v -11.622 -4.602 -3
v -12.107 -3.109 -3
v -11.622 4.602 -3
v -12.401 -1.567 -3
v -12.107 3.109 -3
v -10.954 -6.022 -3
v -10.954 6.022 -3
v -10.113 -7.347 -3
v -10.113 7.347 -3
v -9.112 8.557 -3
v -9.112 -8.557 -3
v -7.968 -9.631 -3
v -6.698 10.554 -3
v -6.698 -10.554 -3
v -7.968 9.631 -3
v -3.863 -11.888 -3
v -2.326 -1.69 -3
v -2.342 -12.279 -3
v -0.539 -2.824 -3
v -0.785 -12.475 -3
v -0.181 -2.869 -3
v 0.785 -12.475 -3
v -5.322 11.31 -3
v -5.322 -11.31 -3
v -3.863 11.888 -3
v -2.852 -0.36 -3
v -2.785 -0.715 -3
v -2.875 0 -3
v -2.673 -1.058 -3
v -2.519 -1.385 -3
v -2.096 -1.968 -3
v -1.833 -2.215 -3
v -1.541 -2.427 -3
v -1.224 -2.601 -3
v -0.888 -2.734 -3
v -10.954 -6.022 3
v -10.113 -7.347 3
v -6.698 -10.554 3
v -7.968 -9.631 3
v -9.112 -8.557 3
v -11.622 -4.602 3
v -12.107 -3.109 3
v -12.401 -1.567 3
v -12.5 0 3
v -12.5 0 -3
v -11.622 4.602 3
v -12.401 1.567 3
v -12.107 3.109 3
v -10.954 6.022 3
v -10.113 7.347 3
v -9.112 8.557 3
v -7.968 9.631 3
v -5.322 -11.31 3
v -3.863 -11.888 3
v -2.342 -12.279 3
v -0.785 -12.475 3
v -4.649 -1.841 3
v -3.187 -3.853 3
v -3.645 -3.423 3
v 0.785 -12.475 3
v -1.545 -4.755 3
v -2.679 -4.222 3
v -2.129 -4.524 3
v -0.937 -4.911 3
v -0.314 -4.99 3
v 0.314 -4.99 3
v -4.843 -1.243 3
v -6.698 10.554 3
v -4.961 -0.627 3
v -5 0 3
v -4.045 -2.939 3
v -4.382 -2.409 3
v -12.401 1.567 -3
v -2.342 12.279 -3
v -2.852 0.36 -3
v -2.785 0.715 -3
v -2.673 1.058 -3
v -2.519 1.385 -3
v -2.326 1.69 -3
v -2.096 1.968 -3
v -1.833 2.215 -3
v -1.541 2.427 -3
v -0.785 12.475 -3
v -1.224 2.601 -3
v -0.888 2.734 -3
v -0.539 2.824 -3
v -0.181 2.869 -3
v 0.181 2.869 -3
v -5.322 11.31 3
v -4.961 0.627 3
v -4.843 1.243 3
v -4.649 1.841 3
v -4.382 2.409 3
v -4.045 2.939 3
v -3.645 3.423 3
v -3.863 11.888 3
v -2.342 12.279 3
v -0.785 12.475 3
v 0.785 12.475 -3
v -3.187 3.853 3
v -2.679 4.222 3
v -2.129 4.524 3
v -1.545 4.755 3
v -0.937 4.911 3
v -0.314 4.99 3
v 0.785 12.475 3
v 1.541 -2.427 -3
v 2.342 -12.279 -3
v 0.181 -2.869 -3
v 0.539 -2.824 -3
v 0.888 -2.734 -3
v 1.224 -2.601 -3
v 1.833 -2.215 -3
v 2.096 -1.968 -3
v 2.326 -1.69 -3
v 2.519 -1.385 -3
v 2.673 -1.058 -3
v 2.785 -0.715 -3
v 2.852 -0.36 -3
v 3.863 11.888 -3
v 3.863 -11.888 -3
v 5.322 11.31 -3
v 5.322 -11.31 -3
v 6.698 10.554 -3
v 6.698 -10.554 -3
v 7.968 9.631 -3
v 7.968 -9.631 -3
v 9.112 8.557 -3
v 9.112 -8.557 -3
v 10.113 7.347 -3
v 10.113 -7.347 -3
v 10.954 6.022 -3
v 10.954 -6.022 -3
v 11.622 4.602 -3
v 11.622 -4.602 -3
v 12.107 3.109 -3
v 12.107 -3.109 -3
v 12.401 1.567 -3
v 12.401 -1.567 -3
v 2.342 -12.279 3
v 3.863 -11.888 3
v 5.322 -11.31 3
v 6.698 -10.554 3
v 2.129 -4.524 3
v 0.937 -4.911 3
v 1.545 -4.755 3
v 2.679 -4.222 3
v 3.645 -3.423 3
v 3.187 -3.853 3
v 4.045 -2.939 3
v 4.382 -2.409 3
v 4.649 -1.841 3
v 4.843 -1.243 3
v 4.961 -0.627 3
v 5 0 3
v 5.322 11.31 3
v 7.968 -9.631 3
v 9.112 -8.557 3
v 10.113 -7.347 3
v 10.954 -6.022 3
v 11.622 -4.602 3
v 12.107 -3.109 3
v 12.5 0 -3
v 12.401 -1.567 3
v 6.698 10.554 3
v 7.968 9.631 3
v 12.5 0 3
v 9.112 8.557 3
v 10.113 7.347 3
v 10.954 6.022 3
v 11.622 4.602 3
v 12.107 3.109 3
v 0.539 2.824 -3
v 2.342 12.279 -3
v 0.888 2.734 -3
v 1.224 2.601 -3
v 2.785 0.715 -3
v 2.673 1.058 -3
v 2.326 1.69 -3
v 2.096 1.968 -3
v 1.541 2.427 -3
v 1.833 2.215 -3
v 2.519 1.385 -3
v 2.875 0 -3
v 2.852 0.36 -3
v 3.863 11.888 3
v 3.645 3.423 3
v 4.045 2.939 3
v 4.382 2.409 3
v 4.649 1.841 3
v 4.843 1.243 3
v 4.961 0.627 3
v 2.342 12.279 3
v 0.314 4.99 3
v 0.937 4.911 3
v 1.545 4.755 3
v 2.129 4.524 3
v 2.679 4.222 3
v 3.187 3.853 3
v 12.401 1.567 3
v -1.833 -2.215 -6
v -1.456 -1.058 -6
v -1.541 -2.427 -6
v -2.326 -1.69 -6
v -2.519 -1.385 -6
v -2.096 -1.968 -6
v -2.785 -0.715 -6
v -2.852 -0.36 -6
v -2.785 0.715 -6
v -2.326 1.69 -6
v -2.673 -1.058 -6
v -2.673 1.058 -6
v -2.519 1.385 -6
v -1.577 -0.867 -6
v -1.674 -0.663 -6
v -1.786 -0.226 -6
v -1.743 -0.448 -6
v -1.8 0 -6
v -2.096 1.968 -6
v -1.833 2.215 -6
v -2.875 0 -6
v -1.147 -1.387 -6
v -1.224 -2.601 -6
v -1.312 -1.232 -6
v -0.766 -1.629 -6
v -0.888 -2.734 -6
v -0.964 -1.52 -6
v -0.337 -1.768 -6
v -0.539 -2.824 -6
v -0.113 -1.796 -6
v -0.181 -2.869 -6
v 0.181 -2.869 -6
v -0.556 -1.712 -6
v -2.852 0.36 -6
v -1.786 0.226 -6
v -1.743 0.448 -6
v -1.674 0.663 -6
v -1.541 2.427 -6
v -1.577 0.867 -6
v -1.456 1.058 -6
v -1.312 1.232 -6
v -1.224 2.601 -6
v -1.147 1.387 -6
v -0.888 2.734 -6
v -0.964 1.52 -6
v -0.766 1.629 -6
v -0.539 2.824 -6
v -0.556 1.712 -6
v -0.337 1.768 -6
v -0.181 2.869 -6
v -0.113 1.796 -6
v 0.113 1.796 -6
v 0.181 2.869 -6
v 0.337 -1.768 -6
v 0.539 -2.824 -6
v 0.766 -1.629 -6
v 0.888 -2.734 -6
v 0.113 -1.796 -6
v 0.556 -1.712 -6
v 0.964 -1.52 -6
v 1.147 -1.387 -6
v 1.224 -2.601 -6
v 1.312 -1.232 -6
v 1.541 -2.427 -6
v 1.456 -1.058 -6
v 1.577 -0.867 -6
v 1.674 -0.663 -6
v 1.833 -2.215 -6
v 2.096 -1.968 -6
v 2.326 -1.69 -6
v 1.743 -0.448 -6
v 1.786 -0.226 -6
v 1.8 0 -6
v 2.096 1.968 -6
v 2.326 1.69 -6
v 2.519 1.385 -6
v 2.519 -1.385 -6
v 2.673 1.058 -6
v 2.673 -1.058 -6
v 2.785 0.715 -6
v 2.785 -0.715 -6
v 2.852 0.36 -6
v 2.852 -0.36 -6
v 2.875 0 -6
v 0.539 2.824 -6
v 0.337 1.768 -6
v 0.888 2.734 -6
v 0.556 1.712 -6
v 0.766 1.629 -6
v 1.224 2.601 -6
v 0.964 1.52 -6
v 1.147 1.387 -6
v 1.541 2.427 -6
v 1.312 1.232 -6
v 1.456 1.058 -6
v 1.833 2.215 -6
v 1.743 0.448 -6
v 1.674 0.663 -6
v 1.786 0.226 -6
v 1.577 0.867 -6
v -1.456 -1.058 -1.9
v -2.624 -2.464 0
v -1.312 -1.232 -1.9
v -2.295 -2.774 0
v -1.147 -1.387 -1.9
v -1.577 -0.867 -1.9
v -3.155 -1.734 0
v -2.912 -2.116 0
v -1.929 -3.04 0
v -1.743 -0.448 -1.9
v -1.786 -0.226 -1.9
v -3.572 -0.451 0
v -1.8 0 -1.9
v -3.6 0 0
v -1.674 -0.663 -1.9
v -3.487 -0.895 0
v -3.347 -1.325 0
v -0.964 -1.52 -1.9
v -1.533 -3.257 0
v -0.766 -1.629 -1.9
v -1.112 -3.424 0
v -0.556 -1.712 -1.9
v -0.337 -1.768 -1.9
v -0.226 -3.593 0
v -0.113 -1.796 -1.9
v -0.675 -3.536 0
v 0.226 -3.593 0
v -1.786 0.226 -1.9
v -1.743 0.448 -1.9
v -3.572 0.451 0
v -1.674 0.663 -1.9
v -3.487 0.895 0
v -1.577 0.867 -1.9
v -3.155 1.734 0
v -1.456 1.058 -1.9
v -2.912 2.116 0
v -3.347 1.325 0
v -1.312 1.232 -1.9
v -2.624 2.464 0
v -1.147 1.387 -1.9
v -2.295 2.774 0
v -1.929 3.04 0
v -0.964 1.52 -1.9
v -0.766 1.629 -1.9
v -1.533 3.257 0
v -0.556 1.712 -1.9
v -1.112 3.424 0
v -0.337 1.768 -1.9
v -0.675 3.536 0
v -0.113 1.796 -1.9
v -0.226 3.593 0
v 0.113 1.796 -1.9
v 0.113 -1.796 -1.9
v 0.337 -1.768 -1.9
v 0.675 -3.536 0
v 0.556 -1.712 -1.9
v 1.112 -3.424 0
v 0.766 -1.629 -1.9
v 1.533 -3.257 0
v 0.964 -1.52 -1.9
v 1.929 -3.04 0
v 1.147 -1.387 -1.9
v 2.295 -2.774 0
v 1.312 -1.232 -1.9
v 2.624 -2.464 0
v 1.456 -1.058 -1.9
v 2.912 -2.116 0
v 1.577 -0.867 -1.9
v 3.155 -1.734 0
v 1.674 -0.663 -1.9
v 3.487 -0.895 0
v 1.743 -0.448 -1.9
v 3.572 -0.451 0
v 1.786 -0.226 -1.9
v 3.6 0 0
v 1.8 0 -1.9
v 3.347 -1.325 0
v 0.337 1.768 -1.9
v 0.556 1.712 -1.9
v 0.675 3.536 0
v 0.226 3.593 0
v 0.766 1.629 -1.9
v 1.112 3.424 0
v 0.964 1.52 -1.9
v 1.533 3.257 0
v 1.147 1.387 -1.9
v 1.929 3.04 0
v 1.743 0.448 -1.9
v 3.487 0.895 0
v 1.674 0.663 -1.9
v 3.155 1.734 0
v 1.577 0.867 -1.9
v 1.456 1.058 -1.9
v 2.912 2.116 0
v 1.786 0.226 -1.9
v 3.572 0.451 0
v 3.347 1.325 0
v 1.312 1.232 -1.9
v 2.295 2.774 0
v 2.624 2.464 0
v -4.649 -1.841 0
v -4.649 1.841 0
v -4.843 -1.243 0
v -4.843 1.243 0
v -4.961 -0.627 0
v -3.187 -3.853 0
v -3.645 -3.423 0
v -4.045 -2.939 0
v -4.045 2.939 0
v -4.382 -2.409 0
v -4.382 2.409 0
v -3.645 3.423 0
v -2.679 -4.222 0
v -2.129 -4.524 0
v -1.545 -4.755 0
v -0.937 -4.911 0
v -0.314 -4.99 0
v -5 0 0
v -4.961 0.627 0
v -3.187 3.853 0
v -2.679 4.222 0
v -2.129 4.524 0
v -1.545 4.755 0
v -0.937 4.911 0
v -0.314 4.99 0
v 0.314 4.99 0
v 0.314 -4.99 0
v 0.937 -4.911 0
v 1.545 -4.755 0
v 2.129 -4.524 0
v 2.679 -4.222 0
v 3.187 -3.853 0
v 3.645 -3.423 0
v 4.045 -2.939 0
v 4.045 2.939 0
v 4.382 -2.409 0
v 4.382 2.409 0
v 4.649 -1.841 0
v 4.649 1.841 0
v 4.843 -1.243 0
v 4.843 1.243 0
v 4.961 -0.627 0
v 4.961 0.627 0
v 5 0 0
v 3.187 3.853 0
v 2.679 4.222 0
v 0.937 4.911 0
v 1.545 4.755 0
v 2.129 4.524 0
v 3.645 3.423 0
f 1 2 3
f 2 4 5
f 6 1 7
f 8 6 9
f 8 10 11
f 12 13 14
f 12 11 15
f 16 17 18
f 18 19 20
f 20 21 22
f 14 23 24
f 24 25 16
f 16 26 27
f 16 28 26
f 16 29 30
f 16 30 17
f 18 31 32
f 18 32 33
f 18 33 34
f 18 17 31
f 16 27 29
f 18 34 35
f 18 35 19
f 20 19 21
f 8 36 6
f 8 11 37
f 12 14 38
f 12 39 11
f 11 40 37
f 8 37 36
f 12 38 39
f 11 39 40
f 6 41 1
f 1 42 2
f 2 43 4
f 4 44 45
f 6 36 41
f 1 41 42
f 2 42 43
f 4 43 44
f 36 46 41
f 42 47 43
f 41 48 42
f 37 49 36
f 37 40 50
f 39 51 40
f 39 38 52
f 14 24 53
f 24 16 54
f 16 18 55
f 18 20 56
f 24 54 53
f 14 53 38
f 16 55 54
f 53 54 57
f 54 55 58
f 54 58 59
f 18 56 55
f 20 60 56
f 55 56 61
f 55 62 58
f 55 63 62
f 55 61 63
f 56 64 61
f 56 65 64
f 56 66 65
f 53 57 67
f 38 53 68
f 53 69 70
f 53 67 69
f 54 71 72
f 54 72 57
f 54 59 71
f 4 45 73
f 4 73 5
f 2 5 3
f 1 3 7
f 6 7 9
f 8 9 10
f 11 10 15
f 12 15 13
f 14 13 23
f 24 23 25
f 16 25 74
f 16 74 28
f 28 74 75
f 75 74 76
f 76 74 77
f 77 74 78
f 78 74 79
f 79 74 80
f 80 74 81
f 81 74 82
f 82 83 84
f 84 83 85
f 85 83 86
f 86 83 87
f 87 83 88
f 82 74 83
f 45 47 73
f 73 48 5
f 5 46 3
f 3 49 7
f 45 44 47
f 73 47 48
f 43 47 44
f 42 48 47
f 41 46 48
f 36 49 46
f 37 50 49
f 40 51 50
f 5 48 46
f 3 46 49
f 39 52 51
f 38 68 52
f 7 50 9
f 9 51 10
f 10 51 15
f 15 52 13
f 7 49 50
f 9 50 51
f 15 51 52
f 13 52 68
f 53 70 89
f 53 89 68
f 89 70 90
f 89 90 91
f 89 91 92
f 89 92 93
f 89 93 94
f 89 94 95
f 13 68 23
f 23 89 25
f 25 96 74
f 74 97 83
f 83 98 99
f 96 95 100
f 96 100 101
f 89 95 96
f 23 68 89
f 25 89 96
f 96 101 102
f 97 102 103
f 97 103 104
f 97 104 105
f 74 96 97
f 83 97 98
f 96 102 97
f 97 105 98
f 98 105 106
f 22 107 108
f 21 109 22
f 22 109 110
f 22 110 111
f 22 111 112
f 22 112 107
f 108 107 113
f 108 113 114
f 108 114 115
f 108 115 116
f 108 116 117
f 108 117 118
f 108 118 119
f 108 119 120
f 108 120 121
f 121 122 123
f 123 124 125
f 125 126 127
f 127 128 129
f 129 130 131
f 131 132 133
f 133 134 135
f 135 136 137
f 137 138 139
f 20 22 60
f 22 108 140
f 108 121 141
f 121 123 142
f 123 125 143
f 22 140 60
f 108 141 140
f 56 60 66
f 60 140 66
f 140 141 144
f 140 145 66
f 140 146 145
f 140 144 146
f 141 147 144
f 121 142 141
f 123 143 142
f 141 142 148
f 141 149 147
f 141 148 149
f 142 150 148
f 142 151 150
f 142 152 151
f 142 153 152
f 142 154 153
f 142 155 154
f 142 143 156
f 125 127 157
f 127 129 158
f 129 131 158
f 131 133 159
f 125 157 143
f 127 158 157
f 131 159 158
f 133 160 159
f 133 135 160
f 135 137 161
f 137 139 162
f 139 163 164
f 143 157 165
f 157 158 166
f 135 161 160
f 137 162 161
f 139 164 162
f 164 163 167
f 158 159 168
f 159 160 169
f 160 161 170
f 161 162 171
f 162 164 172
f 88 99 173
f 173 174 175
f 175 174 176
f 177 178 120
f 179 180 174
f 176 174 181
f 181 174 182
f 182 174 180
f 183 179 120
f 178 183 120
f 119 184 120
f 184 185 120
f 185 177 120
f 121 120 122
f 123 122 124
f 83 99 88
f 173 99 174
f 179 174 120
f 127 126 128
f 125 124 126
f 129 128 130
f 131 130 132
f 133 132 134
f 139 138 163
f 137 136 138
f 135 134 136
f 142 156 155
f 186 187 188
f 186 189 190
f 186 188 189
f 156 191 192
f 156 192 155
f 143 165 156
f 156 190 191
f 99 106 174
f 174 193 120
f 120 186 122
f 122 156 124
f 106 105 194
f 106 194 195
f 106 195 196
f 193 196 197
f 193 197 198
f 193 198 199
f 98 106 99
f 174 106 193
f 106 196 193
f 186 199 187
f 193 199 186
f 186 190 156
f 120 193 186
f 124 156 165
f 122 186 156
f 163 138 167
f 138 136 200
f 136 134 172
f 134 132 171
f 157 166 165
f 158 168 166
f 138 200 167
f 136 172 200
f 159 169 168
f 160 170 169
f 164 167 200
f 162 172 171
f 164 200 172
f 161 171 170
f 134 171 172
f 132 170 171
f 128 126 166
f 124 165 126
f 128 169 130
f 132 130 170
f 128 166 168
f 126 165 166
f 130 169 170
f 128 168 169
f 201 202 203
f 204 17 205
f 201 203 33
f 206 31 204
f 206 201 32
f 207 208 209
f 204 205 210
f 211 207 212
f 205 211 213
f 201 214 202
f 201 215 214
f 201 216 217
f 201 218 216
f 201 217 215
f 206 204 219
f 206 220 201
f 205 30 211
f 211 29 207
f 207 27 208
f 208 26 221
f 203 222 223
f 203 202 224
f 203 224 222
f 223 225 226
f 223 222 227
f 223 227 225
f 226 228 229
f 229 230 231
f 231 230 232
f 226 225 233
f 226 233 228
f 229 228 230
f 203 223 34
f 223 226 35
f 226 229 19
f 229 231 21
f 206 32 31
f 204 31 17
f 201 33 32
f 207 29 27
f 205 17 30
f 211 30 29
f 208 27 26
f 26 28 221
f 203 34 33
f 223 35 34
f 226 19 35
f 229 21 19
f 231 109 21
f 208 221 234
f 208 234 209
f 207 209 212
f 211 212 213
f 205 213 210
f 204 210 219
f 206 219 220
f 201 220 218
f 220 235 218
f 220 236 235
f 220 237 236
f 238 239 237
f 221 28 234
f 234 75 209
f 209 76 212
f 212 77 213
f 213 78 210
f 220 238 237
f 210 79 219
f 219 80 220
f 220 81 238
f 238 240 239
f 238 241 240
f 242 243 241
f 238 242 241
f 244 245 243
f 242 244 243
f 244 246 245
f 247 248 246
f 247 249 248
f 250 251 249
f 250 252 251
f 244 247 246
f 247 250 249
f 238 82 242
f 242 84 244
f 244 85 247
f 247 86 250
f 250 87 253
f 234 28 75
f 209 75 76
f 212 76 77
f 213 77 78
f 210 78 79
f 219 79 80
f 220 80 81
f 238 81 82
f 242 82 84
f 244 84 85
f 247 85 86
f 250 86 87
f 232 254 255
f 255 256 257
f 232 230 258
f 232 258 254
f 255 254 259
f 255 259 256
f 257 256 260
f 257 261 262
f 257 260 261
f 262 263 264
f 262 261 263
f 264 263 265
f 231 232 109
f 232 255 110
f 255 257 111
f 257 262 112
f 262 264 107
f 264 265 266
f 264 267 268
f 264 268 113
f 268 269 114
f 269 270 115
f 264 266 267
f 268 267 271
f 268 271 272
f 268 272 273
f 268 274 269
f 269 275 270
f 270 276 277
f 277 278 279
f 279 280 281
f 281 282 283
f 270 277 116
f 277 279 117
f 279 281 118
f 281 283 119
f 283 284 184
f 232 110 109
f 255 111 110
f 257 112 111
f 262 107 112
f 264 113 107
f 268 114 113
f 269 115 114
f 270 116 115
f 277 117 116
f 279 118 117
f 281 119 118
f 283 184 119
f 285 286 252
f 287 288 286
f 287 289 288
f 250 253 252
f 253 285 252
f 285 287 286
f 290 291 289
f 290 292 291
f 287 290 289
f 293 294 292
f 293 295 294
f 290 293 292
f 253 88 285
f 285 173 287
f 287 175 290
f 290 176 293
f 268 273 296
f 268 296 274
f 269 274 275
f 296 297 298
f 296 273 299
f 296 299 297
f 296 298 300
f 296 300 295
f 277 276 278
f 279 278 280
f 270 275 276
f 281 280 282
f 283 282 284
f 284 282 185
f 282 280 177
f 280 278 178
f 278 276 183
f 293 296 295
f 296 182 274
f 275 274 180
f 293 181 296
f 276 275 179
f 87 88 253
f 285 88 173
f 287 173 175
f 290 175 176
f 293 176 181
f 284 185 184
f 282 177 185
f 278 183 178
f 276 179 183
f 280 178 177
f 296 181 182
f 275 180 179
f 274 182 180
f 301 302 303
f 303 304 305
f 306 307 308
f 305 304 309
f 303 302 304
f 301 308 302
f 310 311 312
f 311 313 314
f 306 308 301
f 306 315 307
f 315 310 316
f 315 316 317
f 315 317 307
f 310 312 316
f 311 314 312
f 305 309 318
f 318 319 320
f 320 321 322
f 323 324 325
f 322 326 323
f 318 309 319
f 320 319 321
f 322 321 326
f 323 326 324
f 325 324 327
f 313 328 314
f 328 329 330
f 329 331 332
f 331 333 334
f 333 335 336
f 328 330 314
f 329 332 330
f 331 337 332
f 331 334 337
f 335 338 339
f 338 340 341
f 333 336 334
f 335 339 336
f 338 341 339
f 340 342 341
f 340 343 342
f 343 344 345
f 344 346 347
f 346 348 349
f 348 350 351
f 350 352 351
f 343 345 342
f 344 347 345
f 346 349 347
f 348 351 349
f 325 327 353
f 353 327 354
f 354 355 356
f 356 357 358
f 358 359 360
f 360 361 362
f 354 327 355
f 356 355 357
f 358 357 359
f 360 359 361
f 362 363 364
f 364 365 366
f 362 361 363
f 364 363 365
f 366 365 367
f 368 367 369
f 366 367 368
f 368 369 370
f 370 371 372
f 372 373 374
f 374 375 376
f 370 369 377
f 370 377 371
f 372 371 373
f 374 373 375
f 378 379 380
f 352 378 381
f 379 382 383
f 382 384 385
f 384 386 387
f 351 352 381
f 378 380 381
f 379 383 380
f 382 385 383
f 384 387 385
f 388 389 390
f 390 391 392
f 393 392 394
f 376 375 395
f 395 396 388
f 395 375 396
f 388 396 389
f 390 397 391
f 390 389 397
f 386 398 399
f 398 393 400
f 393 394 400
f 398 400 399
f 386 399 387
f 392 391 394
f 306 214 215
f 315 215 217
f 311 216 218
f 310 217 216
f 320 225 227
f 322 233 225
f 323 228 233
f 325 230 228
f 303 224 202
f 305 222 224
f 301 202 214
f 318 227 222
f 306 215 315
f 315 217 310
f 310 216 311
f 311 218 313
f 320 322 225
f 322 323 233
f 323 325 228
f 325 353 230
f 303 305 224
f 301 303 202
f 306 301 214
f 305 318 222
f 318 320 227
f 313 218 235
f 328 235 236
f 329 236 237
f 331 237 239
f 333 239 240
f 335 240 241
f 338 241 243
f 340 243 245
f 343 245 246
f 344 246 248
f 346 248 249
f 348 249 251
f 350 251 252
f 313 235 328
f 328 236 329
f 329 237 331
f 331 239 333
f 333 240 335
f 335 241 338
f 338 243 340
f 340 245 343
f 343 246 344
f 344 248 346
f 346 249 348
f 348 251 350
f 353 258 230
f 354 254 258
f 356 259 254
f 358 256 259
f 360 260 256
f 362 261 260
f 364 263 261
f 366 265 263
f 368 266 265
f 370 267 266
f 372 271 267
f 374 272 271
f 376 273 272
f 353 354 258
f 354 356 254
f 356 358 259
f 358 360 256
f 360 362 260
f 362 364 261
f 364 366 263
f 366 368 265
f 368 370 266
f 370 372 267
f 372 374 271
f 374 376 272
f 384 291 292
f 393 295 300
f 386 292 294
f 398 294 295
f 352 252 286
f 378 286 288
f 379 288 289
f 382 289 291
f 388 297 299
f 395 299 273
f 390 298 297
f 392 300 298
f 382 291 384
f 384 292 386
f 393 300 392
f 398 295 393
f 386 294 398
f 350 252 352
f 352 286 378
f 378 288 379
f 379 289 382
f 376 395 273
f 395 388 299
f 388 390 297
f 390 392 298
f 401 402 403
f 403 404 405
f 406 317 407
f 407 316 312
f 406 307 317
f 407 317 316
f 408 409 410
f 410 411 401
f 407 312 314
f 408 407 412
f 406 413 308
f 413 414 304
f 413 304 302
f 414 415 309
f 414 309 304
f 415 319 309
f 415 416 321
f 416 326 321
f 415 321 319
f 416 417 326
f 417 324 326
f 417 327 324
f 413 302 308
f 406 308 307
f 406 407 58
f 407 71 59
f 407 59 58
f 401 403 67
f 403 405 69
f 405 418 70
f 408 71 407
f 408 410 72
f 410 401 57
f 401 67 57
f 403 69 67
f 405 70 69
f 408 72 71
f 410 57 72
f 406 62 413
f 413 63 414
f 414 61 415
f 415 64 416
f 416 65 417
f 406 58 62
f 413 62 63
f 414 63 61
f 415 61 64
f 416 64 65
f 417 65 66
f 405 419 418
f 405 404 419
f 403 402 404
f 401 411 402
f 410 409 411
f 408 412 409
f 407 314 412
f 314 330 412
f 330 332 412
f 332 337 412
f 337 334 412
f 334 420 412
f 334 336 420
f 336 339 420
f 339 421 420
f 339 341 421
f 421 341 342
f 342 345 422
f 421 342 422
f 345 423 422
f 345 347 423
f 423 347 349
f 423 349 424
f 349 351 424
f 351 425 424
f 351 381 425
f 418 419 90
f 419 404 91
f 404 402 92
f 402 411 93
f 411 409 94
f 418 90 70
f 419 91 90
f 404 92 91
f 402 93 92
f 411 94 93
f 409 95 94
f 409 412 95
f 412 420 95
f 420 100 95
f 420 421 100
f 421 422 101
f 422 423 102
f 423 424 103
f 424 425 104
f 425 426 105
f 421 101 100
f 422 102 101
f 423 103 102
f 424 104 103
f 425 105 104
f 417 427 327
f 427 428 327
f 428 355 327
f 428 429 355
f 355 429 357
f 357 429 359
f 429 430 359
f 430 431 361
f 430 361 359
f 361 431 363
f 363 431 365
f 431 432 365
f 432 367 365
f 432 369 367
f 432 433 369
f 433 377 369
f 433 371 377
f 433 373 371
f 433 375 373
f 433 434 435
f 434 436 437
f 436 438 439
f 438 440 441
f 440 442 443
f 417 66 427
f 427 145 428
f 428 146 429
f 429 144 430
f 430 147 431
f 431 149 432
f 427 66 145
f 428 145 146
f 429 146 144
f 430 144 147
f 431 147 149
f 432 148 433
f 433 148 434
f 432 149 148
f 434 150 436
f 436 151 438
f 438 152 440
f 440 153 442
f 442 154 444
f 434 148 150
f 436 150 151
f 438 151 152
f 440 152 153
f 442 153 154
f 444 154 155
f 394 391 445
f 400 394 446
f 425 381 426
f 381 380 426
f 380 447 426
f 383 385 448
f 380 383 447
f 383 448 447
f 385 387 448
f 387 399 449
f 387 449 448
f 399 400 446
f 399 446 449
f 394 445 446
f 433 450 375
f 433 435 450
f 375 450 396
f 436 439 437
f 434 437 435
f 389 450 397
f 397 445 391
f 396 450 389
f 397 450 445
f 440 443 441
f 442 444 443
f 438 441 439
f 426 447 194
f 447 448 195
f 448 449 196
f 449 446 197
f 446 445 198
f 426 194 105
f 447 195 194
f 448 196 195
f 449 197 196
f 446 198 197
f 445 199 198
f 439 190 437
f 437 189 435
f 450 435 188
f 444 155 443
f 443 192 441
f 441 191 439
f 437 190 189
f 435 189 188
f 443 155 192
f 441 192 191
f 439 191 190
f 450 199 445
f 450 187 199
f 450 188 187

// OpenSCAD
$fn = 50;

difference() {
	union() {
		translate(v = [0, 0, -3.0]) {
			cylinder(h = 6, r = 12.5);
		}
		#translate(v = [0, 0, -6.0]) {
			cylinder(h = 6, r = 2.875);
		}
	}
	union() {
		translate(v = [0, 0, 0]) {
			rotate(a = [0, 0, 0]) {
				difference() {
					union() {
						translate(v = [0, 0, -6.0]) {
							cylinder(h = 6, r = 1.5);
						}
						translate(v = [0, 0, -1.9]) {
							cylinder(h = 1.9, r1 = 1.8, r2 = 3.6);
						}
						translate(v = [0, 0, -6.0]) {
							cylinder(h = 6, r = 1.8);
						}
						translate(v = [0, 0, -6.0]) {
							cylinder(h = 6, r = 1.5);
						}
					}
					union();
				}
			}
		}
		#cylinder(h = 3, r = 5.0);
	}
}
